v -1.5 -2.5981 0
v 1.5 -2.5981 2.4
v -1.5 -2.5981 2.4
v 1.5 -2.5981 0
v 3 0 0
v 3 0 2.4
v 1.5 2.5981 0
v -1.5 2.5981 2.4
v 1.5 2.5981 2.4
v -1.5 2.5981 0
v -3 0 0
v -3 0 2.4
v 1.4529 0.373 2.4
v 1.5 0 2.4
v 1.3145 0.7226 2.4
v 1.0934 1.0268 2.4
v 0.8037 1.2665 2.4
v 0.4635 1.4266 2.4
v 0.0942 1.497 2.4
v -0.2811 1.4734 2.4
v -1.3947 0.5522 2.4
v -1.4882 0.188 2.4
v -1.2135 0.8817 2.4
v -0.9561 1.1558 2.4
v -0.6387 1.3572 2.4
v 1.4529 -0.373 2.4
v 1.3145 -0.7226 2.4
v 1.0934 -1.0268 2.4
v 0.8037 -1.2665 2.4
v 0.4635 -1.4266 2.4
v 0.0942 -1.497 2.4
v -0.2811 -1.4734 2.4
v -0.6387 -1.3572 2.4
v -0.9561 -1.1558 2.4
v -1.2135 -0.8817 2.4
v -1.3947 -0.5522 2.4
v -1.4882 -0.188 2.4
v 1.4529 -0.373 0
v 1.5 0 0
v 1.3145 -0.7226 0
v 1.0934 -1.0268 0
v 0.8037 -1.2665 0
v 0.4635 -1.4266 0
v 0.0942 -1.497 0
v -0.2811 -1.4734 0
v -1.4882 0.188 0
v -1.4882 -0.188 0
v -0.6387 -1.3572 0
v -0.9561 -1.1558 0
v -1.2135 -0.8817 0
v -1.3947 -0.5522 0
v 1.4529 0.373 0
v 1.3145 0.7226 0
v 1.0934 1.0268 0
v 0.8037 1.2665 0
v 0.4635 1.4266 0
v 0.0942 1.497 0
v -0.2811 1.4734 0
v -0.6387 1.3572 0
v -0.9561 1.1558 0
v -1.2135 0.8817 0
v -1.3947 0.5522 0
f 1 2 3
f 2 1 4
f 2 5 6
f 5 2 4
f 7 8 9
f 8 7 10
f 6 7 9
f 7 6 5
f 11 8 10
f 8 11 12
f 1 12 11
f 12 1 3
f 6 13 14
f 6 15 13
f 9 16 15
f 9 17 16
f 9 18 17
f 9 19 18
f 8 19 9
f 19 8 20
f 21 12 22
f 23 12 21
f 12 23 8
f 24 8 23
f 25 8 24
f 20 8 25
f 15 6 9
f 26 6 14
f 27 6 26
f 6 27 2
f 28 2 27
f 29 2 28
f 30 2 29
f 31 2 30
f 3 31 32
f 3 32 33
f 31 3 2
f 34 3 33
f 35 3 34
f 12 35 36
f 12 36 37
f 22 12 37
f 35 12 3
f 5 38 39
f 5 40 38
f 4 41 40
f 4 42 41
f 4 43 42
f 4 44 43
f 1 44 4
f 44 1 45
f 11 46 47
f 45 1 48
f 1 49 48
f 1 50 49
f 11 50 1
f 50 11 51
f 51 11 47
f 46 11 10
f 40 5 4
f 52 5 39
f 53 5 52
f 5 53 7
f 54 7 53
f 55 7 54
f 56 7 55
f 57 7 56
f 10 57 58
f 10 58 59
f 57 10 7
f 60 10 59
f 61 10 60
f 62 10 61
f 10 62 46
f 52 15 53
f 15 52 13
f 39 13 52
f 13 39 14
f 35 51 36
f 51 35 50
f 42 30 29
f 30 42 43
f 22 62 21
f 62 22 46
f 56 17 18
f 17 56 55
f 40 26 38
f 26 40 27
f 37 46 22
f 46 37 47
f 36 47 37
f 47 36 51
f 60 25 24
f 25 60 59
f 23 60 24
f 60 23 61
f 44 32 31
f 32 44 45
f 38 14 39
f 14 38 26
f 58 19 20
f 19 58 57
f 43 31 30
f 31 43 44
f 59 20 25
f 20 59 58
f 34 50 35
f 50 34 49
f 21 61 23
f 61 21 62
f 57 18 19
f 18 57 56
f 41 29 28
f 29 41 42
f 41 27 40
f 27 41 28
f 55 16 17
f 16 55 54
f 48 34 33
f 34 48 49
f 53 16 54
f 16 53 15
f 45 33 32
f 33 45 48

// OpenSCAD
// file: lib/screw_nuts.scad
$fn=25;

module screw_m3(h=20){
    cylinder(d=3, h=h, center=true);
    translate([0, 0, -h/2-1.5])
        difference(){
            cylinder(d=5.5, h=3, center=true);
            translate([0, 0, -0.8])
                cylinder(d=2.8, h=1.8, $fn=6, center=true);
        }
}

module screw_m4(h=20){
    cylinder(d=4, h=h, center=true);
    translate([0, 0, -h/2-2])
        difference(){
            cylinder(d=7, h=4, center=true);
            translate([0, 0, -0.8])
                cylinder(d=3.5, h=2.5, $fn=6, center=true);
        }
}

module nut_m3(){
    difference(){
        cylinder(d=6, h=2.4, $fn=6);
        translate([0, 0, -0.05])
            cylinder(d=3, h=2.5);
    }
}

module nut_m4(){
    difference(){
        cylinder(d=7.6, h=3.2, $fn=6);
        translate([0, 0, -0.05])
            cylinder(d=4, h=3.3);
    }
}

module washer_m3(h){
    difference(){
        cylinder(d=8, h=h, center=true);
        cylinder(d=3.5, h=h+0.1, center=true);
    }
}
// main file
// NAME: Nut M3
// COLOR: 80
// CATEGORY: Support

include <lib/screw_nuts.scad>

nut_m3();
